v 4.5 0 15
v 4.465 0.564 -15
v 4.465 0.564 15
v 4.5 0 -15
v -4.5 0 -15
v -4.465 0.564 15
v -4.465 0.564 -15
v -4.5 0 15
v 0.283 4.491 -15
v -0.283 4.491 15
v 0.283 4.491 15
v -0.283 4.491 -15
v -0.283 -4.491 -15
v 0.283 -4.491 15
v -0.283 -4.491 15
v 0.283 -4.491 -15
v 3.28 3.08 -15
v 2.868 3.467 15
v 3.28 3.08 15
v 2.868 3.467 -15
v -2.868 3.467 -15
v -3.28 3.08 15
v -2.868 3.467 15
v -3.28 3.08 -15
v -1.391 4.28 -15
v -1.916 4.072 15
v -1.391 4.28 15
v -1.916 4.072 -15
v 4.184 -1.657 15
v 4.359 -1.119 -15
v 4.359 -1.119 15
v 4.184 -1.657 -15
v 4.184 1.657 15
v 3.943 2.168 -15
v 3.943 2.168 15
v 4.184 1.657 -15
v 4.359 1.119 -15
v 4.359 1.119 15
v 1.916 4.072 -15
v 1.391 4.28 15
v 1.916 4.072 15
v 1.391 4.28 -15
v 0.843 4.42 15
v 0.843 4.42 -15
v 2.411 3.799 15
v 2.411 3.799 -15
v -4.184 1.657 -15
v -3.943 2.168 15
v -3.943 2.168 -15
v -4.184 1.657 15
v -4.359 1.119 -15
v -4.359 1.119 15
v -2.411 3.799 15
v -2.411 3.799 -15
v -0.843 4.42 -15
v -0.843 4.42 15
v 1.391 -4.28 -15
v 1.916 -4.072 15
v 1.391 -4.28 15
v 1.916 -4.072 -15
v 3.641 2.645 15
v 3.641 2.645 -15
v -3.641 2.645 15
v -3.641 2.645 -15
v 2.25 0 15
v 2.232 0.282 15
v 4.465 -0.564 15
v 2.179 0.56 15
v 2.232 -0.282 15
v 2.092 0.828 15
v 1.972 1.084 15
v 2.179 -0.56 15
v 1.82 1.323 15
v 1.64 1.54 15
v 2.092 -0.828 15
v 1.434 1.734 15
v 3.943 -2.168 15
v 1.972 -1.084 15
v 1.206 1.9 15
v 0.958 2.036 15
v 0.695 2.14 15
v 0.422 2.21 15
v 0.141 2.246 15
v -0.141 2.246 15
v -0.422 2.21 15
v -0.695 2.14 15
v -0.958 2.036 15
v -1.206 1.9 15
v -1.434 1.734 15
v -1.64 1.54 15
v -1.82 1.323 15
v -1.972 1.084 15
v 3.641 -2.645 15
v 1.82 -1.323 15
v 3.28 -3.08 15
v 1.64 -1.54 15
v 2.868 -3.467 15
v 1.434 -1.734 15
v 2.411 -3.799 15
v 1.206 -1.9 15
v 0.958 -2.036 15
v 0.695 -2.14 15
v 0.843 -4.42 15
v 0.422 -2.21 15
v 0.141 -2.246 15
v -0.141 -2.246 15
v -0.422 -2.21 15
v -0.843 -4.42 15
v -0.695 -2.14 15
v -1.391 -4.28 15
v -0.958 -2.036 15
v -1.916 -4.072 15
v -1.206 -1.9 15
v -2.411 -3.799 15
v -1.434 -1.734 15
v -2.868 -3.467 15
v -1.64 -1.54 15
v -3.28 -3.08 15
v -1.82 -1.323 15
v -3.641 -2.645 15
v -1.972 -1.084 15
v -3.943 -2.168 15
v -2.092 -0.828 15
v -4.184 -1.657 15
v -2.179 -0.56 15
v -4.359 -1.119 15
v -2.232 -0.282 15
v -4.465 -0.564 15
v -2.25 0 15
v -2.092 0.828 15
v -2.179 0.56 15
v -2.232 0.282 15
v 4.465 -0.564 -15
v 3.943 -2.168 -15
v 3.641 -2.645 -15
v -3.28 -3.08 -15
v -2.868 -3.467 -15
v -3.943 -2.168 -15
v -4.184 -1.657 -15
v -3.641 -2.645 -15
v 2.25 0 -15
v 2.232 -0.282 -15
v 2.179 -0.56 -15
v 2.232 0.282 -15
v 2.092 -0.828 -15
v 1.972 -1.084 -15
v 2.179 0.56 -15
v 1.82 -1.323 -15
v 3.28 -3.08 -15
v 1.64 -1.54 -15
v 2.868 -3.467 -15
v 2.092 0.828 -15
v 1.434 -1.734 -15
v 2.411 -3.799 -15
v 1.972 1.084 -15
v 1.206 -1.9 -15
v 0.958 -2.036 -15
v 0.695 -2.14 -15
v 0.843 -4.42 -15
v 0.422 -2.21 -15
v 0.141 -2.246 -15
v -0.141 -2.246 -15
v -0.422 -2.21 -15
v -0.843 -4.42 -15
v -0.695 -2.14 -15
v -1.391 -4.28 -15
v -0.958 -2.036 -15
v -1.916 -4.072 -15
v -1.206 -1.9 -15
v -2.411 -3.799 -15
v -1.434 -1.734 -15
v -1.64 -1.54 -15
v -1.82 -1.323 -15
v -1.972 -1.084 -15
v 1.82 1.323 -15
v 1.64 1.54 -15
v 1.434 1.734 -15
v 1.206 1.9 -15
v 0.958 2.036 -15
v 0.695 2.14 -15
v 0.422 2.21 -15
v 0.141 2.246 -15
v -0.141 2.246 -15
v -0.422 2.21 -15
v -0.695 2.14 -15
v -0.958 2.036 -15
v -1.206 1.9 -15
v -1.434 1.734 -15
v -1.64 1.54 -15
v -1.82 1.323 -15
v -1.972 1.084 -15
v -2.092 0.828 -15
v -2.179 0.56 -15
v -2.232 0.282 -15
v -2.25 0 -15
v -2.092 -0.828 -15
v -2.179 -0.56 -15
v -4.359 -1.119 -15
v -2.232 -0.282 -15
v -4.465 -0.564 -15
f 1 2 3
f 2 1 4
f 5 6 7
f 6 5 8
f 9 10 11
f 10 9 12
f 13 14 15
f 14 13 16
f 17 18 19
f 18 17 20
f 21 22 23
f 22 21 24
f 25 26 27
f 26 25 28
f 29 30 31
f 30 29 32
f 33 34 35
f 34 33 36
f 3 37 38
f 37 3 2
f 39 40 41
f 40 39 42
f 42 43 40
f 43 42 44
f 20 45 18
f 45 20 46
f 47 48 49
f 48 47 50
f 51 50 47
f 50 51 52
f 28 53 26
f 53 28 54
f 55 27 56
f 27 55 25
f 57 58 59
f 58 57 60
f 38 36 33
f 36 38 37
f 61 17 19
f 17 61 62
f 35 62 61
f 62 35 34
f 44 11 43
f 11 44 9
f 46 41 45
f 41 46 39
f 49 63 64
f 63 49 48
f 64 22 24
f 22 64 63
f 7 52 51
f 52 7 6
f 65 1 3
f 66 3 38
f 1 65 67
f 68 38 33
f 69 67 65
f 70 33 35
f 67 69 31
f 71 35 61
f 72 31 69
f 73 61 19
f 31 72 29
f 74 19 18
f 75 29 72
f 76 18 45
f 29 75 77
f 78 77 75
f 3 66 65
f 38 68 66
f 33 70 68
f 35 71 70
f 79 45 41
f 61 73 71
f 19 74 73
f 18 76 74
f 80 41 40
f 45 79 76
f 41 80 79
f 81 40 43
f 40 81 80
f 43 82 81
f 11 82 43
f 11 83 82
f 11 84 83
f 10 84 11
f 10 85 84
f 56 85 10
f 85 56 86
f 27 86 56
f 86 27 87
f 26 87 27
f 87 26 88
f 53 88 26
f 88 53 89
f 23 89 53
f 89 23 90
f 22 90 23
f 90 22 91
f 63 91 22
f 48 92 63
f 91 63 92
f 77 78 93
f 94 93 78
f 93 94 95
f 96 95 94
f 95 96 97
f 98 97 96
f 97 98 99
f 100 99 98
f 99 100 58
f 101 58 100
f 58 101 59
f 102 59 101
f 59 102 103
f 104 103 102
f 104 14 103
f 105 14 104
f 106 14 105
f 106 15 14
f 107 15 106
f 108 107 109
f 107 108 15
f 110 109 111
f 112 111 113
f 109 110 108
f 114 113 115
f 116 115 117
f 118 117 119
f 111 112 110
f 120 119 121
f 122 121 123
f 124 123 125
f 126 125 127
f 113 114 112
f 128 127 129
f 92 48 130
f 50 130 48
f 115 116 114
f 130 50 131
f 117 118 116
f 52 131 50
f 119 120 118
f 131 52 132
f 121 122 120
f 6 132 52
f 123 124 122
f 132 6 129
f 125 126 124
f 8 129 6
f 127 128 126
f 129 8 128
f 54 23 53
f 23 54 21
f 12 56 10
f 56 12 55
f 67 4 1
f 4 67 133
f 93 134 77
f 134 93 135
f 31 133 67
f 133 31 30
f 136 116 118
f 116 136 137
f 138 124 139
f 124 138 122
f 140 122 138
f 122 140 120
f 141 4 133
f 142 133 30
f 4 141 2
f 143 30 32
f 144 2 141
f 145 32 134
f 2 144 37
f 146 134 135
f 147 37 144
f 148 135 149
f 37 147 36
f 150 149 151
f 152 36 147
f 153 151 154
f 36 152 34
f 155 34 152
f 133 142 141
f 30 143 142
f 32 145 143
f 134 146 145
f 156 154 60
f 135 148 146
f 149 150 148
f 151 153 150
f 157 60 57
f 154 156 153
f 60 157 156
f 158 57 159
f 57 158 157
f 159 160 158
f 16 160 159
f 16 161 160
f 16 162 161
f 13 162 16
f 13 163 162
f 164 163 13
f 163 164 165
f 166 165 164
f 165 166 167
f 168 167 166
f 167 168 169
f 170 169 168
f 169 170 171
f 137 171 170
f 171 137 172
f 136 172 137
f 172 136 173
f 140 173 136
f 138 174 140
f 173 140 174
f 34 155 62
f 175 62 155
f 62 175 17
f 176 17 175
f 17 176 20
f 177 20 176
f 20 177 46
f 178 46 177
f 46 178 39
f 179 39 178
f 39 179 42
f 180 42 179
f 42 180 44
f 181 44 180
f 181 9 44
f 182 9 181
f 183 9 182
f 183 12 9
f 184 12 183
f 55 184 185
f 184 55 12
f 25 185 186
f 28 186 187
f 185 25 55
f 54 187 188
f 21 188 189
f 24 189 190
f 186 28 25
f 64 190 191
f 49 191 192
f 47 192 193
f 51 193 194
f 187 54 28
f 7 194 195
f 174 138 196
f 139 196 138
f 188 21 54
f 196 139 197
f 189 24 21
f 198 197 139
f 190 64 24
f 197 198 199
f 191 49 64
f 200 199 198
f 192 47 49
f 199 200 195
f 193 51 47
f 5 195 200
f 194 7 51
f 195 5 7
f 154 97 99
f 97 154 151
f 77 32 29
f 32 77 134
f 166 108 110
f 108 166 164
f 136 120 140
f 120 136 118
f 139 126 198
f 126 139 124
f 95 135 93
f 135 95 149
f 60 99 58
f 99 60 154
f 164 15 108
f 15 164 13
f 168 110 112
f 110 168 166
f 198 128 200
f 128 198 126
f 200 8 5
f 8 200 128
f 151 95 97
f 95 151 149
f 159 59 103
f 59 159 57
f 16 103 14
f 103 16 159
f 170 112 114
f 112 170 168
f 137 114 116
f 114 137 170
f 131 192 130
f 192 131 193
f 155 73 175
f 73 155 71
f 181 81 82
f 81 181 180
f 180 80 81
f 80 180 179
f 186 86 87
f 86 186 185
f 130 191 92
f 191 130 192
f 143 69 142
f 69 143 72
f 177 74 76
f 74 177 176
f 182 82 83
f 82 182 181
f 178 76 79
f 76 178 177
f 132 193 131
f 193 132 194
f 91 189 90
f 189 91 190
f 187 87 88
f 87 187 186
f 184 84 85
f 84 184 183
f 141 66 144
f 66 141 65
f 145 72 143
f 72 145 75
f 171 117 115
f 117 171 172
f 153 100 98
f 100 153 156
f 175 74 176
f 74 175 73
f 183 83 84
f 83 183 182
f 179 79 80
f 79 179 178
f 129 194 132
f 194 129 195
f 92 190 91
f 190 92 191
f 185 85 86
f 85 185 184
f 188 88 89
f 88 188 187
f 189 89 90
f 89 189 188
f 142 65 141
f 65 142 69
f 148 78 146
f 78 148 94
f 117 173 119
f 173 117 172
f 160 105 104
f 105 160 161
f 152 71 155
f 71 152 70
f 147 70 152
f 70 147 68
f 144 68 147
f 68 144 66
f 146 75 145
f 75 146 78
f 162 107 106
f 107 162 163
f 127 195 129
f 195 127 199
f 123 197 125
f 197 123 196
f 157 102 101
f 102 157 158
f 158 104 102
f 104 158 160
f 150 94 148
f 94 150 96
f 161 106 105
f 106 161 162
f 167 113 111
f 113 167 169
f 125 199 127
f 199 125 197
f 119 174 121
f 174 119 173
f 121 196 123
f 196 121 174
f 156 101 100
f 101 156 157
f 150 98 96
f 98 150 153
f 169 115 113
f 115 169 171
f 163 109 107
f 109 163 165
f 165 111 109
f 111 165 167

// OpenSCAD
$fn = 50;


difference() {
	union() {
		translate(v = [0, 0, -15.0000000000]) {
			cylinder(h = 30, r = 4.5000000000);
		}
	}
	union() {
		translate(v = [0, 0, -100.0000000000]) {
			cylinder(h = 200, r = 2.2500000000);
		}
	}
}
